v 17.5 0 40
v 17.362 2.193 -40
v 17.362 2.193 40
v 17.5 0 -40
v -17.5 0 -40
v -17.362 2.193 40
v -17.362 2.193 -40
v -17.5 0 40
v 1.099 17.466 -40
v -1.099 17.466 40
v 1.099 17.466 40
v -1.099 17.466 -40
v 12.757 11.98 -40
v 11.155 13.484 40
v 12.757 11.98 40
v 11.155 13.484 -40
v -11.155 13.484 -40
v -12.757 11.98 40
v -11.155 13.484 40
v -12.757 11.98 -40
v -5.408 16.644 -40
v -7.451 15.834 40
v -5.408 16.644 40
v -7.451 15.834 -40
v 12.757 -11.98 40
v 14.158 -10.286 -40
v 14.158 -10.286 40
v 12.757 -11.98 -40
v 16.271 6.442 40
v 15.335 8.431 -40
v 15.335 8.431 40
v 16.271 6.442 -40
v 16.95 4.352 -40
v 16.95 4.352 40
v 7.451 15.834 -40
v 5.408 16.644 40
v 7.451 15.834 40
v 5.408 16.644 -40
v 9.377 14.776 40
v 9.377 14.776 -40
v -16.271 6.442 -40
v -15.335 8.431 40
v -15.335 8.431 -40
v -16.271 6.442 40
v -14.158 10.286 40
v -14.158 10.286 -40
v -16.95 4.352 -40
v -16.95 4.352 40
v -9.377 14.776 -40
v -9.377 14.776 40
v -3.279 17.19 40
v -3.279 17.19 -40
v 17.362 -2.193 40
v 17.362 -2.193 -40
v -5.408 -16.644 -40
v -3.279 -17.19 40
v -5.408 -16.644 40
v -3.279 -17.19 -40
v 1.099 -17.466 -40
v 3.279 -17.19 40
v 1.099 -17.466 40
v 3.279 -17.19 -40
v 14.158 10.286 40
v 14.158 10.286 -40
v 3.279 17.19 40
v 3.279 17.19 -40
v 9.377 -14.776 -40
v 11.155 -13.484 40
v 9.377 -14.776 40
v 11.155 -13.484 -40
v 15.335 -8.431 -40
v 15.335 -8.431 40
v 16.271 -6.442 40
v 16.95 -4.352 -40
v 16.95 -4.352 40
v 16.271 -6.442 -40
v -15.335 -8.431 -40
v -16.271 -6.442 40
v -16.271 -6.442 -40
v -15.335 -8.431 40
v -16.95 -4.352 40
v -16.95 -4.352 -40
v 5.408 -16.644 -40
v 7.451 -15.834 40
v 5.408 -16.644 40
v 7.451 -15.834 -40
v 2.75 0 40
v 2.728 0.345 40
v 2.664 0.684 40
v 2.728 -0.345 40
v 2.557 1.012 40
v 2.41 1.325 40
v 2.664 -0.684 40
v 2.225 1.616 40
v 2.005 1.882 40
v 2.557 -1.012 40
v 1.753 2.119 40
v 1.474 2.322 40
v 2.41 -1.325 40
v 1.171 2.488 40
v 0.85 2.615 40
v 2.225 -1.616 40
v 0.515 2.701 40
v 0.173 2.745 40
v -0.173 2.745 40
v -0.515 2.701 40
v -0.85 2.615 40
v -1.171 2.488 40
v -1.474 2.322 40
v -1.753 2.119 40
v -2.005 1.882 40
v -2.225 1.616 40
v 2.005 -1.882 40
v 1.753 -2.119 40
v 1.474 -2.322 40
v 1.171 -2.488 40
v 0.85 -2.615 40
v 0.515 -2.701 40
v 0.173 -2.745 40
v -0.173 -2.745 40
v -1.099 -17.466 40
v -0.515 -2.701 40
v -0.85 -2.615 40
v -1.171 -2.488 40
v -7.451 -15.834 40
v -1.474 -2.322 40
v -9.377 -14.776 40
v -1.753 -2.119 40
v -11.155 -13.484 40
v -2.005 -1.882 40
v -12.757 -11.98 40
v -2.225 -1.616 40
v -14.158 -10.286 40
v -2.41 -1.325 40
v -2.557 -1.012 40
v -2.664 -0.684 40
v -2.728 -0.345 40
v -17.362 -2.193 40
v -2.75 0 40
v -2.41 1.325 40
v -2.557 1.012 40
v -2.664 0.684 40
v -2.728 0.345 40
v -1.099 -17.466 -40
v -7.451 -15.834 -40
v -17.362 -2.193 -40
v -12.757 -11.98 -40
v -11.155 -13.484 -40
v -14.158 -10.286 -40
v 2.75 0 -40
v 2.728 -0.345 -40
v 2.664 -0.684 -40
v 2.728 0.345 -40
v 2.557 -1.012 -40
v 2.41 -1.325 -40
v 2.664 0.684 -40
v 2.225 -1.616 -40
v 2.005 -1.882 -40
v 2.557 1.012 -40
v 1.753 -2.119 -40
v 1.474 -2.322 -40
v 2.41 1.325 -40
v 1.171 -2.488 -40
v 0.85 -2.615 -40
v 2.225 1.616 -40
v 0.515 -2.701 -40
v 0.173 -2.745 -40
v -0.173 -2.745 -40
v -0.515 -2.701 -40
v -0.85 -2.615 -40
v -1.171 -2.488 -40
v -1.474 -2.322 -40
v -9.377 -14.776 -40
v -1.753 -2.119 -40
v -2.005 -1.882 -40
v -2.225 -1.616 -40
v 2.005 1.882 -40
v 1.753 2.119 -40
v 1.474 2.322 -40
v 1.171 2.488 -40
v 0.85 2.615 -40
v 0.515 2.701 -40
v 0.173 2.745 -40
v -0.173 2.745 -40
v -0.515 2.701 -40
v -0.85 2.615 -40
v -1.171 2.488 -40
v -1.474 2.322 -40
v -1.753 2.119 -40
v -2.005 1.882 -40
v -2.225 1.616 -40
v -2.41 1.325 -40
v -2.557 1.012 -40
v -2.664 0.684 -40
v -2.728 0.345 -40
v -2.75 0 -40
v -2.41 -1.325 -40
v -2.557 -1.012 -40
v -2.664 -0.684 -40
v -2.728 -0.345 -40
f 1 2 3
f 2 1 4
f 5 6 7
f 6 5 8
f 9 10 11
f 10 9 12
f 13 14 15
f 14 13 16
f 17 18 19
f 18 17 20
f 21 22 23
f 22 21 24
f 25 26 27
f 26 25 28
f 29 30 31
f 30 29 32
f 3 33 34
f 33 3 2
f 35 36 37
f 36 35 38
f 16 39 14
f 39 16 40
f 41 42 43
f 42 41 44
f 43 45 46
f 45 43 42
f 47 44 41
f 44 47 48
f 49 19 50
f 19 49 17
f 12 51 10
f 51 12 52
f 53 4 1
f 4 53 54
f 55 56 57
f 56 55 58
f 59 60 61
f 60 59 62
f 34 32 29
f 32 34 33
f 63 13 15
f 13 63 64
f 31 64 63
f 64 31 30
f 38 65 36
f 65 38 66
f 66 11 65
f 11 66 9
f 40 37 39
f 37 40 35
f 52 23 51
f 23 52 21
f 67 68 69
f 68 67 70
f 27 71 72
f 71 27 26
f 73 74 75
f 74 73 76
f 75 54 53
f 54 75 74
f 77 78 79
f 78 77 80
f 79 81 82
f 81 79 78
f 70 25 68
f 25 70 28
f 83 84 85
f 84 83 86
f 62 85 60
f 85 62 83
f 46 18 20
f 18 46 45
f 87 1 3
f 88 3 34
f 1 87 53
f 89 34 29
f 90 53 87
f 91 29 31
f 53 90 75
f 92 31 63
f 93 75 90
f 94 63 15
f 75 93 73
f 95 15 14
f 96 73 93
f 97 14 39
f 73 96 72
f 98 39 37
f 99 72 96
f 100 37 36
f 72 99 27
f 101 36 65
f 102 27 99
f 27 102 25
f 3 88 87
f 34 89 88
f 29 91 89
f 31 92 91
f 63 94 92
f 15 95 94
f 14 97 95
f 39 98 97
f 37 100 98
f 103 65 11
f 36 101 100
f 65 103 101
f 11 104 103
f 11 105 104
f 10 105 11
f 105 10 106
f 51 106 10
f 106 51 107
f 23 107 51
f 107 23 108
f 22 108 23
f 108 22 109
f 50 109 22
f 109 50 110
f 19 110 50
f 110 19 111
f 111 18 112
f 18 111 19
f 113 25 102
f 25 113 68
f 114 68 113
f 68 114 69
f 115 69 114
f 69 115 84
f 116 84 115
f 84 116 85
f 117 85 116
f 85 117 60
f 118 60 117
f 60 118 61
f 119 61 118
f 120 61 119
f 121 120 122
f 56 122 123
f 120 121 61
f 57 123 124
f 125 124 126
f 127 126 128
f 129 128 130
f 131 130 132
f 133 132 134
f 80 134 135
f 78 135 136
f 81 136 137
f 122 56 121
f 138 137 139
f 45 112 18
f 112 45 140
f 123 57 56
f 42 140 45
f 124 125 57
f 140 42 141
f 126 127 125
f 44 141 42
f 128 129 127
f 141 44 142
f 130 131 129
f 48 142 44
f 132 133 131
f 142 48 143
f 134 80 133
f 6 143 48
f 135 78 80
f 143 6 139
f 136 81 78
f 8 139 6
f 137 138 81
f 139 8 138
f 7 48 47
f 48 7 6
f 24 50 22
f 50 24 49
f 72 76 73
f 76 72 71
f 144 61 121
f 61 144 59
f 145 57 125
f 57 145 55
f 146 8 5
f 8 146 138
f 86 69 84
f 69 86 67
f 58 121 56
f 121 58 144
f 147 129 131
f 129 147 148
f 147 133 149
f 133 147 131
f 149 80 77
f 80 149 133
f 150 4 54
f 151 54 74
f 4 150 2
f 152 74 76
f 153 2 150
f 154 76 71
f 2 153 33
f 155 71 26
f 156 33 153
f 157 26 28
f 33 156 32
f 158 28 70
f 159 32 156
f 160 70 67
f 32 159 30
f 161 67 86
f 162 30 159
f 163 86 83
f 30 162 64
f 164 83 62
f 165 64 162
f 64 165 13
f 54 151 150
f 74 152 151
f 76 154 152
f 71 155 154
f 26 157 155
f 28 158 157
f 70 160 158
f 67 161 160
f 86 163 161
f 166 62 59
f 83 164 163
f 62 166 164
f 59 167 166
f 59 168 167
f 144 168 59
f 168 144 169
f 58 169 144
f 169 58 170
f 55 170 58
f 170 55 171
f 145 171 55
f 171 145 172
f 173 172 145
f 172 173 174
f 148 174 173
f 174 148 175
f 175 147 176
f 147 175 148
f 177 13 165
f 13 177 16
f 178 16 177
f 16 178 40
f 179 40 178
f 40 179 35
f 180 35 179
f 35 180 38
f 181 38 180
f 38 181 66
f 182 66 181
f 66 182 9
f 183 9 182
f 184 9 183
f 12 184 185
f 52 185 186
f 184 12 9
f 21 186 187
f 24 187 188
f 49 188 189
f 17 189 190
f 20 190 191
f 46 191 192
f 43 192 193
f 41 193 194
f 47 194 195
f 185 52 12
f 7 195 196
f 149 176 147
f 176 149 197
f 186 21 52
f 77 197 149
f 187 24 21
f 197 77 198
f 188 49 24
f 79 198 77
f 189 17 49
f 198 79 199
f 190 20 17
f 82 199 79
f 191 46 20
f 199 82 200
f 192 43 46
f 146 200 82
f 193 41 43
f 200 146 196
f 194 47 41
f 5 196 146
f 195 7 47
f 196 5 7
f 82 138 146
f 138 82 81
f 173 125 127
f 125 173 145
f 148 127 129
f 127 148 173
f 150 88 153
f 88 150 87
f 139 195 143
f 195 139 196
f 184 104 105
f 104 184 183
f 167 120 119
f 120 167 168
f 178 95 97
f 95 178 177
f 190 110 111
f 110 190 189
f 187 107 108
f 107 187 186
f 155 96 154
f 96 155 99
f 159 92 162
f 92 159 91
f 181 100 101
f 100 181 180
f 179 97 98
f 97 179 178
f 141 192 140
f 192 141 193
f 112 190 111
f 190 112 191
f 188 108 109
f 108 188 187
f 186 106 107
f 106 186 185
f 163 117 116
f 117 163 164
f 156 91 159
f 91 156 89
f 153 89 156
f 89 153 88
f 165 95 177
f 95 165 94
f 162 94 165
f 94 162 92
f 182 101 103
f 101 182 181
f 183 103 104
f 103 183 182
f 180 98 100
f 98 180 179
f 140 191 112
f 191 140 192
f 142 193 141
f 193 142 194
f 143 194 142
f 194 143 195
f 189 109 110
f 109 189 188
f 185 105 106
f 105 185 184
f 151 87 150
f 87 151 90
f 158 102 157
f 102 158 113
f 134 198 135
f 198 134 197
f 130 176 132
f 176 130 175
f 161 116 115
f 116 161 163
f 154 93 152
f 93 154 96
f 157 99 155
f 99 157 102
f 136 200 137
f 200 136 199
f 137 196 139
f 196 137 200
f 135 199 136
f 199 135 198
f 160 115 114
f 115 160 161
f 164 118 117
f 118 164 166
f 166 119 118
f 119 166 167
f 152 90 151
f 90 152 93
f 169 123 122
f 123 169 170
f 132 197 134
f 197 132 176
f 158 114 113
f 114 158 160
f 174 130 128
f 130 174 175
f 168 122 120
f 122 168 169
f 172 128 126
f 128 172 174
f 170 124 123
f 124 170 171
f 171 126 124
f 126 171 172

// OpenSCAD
$fn = 50;


difference() {
	union() {
		translate(v = [0, 0, -40.0000000000]) {
			cylinder(h = 80, r = 17.5000000000);
		}
	}
	union() {
		translate(v = [0, 0, -100.0000000000]) {
			cylinder(h = 200, r = 2.7500000000);
		}
	}
}
